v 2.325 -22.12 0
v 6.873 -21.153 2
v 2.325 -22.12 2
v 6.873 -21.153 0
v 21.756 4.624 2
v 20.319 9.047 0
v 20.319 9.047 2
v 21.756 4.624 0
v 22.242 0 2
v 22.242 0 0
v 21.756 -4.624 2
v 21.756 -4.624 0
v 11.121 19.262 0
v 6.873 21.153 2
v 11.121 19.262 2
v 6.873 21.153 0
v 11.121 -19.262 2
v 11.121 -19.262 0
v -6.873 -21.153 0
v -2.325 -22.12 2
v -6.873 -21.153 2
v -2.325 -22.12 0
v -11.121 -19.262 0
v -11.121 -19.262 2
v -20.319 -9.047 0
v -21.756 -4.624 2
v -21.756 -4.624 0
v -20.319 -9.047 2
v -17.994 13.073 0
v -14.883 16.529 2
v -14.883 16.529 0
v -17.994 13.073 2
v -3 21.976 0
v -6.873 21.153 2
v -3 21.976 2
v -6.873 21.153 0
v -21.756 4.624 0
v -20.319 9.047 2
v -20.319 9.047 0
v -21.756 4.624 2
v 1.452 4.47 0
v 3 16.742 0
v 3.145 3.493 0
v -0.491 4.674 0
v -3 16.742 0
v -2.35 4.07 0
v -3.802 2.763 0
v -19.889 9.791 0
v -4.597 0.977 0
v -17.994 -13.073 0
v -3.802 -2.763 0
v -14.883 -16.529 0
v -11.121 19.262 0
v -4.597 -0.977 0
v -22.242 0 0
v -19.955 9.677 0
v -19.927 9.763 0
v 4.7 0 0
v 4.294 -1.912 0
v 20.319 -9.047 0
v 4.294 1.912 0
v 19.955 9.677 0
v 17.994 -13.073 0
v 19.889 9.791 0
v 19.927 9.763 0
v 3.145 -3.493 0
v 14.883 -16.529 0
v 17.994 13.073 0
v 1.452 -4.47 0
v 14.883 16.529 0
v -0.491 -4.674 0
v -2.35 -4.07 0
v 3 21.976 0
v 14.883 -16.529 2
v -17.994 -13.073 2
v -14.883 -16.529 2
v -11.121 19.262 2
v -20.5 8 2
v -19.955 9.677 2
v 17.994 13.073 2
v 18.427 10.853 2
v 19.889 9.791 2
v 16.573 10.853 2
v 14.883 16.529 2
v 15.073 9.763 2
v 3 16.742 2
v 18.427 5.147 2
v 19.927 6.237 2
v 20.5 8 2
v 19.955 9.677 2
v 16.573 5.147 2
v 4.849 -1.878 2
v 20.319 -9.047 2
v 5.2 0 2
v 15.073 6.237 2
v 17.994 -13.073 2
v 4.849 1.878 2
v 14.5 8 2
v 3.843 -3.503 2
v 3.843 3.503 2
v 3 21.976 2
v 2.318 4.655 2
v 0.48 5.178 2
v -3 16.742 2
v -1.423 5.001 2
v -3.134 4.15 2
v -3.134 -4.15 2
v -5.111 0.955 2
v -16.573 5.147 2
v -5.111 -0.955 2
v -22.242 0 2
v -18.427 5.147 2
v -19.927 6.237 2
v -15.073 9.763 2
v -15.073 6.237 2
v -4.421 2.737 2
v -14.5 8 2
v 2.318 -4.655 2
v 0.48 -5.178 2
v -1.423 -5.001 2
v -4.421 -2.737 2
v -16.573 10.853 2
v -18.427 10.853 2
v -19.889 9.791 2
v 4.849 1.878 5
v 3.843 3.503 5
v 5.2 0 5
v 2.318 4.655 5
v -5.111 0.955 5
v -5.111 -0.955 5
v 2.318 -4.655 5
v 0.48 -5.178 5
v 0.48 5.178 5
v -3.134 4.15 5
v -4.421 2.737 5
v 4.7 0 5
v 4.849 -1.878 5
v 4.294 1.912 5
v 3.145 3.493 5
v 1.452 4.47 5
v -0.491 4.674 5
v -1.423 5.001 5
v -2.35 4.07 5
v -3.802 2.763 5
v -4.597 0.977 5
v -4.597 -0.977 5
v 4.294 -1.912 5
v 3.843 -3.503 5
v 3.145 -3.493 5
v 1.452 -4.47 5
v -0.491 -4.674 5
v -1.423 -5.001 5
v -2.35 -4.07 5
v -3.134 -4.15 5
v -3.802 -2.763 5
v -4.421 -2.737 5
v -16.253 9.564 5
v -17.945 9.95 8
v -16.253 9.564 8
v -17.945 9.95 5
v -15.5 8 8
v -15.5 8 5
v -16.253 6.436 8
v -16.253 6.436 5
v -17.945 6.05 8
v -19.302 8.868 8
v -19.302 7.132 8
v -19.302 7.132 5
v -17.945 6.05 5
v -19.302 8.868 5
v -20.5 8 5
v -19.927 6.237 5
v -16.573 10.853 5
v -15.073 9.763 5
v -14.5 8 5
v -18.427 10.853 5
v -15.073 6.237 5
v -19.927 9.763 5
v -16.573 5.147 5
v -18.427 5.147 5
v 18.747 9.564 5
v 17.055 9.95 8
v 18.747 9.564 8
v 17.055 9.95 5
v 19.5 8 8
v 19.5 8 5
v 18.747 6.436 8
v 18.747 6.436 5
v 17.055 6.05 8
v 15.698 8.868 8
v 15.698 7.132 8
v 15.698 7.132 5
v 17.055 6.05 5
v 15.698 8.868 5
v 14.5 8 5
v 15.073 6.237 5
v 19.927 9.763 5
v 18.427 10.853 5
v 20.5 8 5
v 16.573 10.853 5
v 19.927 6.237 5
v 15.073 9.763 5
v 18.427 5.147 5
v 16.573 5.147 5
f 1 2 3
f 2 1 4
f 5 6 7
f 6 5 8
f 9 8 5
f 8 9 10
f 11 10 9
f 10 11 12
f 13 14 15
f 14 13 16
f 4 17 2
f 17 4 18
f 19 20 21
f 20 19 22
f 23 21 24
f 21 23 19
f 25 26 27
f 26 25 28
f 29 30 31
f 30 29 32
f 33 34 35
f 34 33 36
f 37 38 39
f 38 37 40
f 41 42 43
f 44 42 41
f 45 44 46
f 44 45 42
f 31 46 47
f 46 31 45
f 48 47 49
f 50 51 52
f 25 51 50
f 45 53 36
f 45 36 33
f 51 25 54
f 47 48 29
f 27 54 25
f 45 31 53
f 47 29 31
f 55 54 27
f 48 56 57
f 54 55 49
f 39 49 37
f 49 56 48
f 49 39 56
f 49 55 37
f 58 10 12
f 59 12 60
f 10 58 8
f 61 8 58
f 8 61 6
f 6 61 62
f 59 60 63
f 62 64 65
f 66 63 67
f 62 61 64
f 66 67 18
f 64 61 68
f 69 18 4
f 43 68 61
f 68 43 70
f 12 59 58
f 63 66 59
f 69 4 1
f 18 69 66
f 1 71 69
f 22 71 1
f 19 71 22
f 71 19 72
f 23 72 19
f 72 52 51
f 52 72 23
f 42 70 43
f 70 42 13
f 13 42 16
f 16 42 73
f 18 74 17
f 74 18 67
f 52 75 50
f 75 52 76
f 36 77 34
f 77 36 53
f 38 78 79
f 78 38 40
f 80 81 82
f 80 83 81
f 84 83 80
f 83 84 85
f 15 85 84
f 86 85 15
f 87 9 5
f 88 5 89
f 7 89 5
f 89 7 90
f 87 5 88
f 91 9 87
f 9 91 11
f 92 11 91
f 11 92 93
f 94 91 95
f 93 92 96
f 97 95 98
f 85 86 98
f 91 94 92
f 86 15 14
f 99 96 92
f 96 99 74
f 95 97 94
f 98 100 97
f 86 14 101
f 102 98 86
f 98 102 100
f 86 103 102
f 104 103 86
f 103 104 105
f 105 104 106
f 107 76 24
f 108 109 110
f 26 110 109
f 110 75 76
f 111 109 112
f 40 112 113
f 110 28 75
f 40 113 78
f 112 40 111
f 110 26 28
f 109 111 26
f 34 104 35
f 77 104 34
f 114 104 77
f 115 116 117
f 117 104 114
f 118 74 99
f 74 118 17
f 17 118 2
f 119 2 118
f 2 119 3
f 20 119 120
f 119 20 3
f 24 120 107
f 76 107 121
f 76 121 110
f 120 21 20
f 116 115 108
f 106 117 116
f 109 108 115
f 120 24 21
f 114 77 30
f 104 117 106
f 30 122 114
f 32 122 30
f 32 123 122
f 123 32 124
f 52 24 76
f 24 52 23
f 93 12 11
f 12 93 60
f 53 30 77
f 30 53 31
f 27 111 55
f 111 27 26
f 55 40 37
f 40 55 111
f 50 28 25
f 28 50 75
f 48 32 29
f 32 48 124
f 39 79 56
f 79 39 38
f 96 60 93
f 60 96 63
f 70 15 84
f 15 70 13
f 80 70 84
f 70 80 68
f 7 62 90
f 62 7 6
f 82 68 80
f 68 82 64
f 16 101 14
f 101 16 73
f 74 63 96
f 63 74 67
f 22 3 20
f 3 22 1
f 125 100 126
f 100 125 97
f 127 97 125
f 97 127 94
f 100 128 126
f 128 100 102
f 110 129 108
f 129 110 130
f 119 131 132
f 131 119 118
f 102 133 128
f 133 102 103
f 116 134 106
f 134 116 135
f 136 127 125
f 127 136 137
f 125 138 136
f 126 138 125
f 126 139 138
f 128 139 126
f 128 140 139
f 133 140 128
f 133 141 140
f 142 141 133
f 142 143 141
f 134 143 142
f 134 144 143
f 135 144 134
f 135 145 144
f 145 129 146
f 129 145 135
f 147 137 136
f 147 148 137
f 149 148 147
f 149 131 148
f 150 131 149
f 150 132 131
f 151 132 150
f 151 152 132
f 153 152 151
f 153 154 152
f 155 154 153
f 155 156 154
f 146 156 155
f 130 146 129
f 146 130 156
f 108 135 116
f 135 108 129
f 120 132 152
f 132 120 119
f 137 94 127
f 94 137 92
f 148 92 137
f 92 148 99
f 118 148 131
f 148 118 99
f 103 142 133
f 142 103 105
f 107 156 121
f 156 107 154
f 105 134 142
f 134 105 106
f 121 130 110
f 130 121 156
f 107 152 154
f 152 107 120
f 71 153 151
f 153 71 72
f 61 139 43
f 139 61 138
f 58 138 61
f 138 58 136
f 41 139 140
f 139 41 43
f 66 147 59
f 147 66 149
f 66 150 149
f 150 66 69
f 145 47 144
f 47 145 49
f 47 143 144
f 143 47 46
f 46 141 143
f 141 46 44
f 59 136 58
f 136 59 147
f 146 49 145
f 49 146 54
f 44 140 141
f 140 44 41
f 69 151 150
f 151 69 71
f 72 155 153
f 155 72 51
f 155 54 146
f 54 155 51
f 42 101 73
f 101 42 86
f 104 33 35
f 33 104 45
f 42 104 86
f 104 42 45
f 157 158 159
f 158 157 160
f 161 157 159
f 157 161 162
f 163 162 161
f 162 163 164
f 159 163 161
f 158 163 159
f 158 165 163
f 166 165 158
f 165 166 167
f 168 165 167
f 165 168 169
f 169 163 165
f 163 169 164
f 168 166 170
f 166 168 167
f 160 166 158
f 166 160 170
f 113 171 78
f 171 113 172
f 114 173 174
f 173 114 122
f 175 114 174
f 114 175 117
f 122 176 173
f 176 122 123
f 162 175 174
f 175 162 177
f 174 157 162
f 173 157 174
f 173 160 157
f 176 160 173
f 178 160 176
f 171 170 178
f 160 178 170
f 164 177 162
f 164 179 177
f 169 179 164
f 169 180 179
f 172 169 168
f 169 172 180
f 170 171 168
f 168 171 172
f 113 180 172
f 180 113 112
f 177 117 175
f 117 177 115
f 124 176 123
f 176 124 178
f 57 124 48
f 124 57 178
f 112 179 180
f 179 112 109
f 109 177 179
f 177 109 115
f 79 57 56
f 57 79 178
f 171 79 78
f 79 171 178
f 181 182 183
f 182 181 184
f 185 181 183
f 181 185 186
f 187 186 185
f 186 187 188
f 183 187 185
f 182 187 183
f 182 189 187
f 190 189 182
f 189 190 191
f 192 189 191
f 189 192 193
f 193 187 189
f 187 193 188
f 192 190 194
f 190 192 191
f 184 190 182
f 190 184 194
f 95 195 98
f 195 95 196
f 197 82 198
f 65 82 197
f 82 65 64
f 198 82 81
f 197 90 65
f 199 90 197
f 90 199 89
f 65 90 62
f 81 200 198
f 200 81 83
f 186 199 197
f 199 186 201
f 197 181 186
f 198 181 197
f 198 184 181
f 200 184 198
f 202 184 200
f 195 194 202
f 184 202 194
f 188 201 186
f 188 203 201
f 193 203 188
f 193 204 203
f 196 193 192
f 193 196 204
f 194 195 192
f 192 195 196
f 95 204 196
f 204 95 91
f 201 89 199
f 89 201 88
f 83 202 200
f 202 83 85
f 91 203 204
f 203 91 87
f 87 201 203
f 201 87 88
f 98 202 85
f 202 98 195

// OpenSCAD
// file: constants.scad
anchor_x = 17.5;
anchor_y = 8;
wheel_h = 2;
wheel_r = sqrt((anchor_x)^2 + (anchor_y)^2) + 3;
// main file
include <constants.scad>;

module bottom(){

    difference(){
        //Wheel
        hole_r = 4.7;
        union(){
            cylinder(h=wheel_h, r=wheel_r, center=false);
            cylinder(h=5, r=hole_r+.5, center=false);
        }
        //Center hole
        cylinder(h=12, r=hole_r, center=true);

        //falling food hole
        translate([0, wheel_r, 0]){
            cube([6, 11, 10], center=true);
        }
    }

    //Anchors 
    for (i = [-1, 1]){
        translate([anchor_x*i, anchor_y, 0]){
            cylinder(h=8, r=2, center=false);
            cylinder(h=5, r=3, center = false);
        }
    }
}

bottom();
